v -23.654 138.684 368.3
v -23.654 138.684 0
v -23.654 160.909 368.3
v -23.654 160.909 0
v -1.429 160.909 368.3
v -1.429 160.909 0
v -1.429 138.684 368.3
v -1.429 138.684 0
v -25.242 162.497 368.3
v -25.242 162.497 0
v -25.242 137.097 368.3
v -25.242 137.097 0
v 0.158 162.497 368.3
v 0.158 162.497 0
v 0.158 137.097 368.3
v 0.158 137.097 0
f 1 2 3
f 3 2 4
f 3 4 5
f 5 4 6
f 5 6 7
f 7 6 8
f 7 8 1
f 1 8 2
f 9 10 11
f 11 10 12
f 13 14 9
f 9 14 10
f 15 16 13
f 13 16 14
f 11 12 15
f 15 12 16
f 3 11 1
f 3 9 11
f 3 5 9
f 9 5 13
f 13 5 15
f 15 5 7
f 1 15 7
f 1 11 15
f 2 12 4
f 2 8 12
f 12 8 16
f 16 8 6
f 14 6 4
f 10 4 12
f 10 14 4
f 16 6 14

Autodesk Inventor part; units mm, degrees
ref_plane "YZ Plane" through (0, 0, 0) normal (1, 0, 0) x (0, 1, 0)
ref_plane "XZ Plane" through (0, 0, 0) normal (0, 1, 0) x (-1, 0, 0)
ref_plane "XY Plane" through (0, 0, 0) normal (0, 0, 1) x (1, 0, 0)
sketch "Sketch1" plane through (0, 0, 0) normal (0, 0, 1) x (1, 0, 0)
  line L0 (0.1582, 137.0969) -> (-25.2418, 137.0969)
  line L1 (-25.2418, 137.0969) -> (-25.2418, 162.4969)
  line L2 (-25.2418, 162.4969) -> (0.1582, 162.4969)
  line L3 (0.1582, 162.4969) -> (0.1582, 137.0969)
  point P0 (0, 0)
  dimension "d0" = 25.4
  dimension "d1" = 25.4
extrude "Extrusion1" add sketch "Sketch1" along normal blind 368.3
shell "Shell1" thickness 1.5875 removed faces 2 at (-8.3084, 145.5636, 0) at (-8.3084, 145.5636, 368.3)
properties part number "Frame_LowerConveyorBallSupport" material "Aluminum-6061"
